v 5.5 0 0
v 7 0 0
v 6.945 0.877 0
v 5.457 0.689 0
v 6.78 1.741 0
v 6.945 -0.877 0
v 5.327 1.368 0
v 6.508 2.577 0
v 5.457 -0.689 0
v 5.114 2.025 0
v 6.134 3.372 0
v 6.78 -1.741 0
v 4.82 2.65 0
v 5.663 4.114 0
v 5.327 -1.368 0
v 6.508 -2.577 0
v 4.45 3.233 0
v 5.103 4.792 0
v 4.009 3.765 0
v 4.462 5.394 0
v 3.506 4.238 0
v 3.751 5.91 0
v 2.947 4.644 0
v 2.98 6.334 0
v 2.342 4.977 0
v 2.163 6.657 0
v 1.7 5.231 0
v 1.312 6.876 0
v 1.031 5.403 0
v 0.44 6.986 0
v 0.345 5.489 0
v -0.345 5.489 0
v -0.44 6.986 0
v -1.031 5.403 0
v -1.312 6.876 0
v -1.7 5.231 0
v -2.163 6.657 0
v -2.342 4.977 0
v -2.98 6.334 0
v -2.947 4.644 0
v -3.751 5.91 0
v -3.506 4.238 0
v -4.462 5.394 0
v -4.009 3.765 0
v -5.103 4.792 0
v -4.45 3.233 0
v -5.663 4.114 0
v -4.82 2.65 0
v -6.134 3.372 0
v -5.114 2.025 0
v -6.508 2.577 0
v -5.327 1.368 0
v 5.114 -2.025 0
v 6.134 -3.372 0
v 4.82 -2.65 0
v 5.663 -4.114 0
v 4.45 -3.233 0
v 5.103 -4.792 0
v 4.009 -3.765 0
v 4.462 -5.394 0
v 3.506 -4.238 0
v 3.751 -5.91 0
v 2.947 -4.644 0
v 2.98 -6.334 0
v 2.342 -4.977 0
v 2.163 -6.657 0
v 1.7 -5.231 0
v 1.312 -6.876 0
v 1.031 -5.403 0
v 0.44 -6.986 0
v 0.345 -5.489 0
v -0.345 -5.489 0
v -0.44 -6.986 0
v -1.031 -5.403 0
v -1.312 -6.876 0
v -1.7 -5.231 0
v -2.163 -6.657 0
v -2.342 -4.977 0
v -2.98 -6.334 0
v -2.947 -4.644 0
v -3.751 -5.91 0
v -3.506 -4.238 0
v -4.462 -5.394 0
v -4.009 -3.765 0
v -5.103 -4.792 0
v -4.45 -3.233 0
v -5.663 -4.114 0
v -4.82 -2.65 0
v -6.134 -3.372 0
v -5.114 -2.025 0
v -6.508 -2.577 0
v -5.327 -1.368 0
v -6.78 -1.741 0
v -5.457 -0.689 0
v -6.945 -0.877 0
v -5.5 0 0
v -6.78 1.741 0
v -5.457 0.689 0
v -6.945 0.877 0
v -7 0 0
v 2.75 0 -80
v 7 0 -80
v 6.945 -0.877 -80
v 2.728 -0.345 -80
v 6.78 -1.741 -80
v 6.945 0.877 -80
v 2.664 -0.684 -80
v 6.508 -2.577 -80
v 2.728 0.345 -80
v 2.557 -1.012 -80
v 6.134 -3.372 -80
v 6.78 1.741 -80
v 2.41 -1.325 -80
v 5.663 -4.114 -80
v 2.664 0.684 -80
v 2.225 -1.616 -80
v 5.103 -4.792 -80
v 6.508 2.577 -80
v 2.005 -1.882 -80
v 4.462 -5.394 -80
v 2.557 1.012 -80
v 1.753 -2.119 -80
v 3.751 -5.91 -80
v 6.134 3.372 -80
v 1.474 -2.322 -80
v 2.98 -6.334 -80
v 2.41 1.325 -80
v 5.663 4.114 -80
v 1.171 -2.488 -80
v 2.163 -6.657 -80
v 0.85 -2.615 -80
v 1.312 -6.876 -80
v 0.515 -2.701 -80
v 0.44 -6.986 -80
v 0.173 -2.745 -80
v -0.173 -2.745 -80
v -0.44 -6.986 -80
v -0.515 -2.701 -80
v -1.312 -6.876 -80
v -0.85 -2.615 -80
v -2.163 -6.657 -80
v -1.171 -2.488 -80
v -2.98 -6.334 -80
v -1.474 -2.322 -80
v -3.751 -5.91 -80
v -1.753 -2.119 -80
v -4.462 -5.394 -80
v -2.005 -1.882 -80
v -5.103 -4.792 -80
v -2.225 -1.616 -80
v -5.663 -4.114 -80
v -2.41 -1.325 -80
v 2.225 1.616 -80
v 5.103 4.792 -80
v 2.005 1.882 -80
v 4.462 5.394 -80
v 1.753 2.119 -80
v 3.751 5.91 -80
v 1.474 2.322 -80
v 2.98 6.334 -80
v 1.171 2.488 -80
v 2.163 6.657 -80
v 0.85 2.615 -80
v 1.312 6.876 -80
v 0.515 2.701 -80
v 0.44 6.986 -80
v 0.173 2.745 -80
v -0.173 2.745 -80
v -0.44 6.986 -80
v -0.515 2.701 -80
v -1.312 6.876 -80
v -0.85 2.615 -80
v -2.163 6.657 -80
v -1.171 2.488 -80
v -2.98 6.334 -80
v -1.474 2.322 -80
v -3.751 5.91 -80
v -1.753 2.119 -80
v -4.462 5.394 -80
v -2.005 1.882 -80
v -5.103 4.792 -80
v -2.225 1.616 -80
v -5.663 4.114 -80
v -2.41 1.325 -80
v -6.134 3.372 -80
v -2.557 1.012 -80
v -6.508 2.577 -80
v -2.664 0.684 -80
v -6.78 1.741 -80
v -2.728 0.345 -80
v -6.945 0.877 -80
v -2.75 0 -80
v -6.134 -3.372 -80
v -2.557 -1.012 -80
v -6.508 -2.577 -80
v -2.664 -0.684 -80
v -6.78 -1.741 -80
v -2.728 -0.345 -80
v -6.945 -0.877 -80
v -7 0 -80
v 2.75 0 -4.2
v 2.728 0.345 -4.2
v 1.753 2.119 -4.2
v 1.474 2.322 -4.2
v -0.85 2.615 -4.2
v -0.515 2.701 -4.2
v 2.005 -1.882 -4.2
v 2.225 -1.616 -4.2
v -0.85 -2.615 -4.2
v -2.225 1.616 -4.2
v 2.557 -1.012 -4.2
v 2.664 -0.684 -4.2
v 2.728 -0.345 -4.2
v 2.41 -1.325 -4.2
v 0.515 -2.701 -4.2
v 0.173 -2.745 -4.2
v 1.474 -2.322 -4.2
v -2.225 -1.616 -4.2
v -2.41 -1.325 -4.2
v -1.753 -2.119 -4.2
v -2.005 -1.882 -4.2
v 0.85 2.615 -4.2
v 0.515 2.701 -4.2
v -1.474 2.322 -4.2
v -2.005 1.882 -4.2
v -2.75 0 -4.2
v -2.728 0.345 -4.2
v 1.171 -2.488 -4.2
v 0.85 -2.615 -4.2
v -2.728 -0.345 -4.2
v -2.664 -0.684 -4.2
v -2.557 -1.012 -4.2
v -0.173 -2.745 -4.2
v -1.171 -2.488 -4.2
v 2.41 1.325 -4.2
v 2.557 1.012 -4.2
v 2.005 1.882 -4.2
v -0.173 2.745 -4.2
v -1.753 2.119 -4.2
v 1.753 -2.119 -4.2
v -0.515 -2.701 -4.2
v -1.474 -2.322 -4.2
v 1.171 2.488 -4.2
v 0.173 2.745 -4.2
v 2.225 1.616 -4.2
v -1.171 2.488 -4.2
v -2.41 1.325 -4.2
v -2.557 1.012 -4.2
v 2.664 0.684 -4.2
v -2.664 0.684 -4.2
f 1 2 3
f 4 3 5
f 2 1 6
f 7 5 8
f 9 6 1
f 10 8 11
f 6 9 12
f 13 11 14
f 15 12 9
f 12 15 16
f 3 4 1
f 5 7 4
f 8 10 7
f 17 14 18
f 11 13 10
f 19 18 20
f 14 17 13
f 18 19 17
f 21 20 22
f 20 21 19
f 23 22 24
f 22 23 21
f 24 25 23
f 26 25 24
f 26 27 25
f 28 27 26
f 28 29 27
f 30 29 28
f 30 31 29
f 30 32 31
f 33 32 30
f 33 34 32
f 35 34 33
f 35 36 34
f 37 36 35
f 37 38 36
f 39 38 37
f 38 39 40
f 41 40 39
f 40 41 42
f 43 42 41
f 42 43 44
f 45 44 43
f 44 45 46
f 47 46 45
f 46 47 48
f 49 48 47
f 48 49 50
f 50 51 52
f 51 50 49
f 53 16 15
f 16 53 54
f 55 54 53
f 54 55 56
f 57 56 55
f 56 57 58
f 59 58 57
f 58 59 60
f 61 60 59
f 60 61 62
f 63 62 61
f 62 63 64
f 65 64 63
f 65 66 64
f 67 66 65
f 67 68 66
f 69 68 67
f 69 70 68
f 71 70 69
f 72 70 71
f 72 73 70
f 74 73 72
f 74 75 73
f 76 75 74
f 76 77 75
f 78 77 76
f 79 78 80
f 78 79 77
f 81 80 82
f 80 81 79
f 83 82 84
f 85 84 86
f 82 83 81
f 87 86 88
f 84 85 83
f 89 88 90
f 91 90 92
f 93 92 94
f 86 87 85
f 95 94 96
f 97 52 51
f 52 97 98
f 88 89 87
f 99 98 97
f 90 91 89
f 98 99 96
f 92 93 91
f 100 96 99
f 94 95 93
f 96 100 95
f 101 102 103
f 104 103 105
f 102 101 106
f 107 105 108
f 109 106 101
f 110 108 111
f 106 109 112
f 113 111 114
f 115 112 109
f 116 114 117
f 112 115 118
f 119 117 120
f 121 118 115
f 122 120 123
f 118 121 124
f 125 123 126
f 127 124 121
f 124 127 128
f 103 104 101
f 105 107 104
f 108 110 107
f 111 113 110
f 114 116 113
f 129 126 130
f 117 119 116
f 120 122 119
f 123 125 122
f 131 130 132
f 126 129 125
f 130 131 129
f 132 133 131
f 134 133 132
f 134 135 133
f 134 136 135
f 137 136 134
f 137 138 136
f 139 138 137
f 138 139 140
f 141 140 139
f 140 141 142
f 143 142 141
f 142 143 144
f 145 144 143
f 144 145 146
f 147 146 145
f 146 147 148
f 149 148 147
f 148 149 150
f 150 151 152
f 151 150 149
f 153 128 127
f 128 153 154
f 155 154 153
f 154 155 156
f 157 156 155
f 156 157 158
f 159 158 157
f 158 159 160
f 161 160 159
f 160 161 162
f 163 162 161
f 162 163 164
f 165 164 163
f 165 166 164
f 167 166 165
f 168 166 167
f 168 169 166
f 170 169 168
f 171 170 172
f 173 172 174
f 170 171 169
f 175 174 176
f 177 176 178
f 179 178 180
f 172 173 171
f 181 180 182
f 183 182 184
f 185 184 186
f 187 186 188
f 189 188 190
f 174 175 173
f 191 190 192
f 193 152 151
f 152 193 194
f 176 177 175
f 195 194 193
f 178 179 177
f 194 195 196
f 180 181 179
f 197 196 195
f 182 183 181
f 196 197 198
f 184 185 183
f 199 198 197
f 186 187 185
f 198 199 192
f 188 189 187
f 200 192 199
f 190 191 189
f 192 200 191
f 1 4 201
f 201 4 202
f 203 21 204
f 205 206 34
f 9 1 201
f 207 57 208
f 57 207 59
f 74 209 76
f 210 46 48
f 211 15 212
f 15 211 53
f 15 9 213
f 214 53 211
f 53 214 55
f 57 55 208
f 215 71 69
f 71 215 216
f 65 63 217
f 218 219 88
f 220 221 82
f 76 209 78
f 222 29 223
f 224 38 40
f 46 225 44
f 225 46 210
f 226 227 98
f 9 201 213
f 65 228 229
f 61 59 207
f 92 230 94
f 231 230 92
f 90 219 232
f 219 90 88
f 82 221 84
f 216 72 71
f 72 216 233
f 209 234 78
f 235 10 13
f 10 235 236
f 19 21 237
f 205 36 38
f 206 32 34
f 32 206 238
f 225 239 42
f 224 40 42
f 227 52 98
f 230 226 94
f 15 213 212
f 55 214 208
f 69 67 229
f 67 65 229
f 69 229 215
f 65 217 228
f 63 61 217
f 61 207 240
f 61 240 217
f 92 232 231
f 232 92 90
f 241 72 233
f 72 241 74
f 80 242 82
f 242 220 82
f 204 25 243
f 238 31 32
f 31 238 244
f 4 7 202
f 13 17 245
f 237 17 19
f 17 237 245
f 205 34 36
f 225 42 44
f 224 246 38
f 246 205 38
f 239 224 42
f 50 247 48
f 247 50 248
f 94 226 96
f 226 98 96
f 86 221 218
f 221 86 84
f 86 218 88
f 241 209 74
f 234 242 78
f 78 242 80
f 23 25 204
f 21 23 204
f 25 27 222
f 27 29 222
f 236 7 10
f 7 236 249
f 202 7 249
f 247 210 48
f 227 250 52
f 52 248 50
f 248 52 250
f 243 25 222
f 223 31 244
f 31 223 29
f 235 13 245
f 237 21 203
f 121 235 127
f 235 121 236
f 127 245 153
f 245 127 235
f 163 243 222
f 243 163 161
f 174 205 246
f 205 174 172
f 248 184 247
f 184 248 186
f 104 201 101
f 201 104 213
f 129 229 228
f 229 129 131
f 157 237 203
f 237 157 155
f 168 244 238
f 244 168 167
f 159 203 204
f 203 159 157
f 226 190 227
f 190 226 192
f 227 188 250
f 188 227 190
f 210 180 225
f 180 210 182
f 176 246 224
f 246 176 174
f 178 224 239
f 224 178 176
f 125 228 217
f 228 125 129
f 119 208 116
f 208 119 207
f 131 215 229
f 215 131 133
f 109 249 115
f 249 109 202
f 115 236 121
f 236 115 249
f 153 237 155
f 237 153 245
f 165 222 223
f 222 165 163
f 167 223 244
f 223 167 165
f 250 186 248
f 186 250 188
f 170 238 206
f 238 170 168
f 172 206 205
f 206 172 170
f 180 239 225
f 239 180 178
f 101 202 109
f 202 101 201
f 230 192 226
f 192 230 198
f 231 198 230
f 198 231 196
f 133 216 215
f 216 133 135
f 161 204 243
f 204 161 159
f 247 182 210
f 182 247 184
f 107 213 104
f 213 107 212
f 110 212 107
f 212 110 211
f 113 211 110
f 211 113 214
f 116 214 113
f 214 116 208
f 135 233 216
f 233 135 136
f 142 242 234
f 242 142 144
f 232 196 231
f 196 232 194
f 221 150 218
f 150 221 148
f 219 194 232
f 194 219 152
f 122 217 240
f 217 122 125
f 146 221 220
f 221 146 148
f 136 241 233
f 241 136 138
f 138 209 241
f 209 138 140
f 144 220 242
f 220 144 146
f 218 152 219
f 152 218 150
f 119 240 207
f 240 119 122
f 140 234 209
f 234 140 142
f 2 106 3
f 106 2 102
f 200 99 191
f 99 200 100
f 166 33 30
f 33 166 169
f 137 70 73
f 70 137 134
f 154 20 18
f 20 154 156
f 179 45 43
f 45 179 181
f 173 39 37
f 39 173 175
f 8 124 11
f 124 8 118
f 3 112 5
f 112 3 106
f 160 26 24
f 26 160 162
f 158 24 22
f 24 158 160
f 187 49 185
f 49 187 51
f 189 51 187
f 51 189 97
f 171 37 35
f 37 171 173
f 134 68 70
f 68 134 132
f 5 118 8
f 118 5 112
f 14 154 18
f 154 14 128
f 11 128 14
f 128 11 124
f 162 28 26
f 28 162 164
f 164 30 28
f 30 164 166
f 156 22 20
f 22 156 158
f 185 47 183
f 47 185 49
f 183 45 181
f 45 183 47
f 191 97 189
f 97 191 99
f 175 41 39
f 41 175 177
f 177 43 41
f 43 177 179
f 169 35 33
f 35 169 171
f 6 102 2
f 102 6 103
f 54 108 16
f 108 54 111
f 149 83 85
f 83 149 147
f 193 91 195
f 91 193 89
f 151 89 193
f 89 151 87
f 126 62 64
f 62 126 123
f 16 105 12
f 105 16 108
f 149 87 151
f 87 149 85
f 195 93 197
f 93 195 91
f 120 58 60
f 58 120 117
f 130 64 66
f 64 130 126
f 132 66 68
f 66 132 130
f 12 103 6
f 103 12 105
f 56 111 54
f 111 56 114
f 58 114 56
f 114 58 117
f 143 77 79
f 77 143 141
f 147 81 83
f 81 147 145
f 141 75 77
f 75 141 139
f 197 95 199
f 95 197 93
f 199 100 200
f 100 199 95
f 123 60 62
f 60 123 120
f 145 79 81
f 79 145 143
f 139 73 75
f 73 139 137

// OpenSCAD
$fn = 50;


difference() {
	union() {
		translate(v = [0, 0, -80.0000000000]) {
			cylinder(h = 80, r = 7.0000000000);
		}
		cylinder(h = 0, r = 16.0000000000);
	}
	union() {
		translate(v = [0, 0, 0]) {
			rotate(a = [0, 0, 0]) {
				difference() {
					union() {
						#translate(v = [0, 0, -80.0000000000]) {
							cylinder(h = 80, r = 2.2500000000);
						}
						#translate(v = [0, 0, -4.2000000000]) {
							cylinder(h = 4.2000000000, r = 7.0000000000, r1 = 2.7500000000, r2 = 5.5000000000);
						}
						#translate(v = [0, 0, -80.0000000000]) {
							cylinder(h = 80, r = 2.7500000000);
						}
						#translate(v = [0, 0, -80.0000000000]) {
							cylinder(h = 80, r = 2.2500000000);
						}
					}
					union();
				}
			}
		}
	}
}
